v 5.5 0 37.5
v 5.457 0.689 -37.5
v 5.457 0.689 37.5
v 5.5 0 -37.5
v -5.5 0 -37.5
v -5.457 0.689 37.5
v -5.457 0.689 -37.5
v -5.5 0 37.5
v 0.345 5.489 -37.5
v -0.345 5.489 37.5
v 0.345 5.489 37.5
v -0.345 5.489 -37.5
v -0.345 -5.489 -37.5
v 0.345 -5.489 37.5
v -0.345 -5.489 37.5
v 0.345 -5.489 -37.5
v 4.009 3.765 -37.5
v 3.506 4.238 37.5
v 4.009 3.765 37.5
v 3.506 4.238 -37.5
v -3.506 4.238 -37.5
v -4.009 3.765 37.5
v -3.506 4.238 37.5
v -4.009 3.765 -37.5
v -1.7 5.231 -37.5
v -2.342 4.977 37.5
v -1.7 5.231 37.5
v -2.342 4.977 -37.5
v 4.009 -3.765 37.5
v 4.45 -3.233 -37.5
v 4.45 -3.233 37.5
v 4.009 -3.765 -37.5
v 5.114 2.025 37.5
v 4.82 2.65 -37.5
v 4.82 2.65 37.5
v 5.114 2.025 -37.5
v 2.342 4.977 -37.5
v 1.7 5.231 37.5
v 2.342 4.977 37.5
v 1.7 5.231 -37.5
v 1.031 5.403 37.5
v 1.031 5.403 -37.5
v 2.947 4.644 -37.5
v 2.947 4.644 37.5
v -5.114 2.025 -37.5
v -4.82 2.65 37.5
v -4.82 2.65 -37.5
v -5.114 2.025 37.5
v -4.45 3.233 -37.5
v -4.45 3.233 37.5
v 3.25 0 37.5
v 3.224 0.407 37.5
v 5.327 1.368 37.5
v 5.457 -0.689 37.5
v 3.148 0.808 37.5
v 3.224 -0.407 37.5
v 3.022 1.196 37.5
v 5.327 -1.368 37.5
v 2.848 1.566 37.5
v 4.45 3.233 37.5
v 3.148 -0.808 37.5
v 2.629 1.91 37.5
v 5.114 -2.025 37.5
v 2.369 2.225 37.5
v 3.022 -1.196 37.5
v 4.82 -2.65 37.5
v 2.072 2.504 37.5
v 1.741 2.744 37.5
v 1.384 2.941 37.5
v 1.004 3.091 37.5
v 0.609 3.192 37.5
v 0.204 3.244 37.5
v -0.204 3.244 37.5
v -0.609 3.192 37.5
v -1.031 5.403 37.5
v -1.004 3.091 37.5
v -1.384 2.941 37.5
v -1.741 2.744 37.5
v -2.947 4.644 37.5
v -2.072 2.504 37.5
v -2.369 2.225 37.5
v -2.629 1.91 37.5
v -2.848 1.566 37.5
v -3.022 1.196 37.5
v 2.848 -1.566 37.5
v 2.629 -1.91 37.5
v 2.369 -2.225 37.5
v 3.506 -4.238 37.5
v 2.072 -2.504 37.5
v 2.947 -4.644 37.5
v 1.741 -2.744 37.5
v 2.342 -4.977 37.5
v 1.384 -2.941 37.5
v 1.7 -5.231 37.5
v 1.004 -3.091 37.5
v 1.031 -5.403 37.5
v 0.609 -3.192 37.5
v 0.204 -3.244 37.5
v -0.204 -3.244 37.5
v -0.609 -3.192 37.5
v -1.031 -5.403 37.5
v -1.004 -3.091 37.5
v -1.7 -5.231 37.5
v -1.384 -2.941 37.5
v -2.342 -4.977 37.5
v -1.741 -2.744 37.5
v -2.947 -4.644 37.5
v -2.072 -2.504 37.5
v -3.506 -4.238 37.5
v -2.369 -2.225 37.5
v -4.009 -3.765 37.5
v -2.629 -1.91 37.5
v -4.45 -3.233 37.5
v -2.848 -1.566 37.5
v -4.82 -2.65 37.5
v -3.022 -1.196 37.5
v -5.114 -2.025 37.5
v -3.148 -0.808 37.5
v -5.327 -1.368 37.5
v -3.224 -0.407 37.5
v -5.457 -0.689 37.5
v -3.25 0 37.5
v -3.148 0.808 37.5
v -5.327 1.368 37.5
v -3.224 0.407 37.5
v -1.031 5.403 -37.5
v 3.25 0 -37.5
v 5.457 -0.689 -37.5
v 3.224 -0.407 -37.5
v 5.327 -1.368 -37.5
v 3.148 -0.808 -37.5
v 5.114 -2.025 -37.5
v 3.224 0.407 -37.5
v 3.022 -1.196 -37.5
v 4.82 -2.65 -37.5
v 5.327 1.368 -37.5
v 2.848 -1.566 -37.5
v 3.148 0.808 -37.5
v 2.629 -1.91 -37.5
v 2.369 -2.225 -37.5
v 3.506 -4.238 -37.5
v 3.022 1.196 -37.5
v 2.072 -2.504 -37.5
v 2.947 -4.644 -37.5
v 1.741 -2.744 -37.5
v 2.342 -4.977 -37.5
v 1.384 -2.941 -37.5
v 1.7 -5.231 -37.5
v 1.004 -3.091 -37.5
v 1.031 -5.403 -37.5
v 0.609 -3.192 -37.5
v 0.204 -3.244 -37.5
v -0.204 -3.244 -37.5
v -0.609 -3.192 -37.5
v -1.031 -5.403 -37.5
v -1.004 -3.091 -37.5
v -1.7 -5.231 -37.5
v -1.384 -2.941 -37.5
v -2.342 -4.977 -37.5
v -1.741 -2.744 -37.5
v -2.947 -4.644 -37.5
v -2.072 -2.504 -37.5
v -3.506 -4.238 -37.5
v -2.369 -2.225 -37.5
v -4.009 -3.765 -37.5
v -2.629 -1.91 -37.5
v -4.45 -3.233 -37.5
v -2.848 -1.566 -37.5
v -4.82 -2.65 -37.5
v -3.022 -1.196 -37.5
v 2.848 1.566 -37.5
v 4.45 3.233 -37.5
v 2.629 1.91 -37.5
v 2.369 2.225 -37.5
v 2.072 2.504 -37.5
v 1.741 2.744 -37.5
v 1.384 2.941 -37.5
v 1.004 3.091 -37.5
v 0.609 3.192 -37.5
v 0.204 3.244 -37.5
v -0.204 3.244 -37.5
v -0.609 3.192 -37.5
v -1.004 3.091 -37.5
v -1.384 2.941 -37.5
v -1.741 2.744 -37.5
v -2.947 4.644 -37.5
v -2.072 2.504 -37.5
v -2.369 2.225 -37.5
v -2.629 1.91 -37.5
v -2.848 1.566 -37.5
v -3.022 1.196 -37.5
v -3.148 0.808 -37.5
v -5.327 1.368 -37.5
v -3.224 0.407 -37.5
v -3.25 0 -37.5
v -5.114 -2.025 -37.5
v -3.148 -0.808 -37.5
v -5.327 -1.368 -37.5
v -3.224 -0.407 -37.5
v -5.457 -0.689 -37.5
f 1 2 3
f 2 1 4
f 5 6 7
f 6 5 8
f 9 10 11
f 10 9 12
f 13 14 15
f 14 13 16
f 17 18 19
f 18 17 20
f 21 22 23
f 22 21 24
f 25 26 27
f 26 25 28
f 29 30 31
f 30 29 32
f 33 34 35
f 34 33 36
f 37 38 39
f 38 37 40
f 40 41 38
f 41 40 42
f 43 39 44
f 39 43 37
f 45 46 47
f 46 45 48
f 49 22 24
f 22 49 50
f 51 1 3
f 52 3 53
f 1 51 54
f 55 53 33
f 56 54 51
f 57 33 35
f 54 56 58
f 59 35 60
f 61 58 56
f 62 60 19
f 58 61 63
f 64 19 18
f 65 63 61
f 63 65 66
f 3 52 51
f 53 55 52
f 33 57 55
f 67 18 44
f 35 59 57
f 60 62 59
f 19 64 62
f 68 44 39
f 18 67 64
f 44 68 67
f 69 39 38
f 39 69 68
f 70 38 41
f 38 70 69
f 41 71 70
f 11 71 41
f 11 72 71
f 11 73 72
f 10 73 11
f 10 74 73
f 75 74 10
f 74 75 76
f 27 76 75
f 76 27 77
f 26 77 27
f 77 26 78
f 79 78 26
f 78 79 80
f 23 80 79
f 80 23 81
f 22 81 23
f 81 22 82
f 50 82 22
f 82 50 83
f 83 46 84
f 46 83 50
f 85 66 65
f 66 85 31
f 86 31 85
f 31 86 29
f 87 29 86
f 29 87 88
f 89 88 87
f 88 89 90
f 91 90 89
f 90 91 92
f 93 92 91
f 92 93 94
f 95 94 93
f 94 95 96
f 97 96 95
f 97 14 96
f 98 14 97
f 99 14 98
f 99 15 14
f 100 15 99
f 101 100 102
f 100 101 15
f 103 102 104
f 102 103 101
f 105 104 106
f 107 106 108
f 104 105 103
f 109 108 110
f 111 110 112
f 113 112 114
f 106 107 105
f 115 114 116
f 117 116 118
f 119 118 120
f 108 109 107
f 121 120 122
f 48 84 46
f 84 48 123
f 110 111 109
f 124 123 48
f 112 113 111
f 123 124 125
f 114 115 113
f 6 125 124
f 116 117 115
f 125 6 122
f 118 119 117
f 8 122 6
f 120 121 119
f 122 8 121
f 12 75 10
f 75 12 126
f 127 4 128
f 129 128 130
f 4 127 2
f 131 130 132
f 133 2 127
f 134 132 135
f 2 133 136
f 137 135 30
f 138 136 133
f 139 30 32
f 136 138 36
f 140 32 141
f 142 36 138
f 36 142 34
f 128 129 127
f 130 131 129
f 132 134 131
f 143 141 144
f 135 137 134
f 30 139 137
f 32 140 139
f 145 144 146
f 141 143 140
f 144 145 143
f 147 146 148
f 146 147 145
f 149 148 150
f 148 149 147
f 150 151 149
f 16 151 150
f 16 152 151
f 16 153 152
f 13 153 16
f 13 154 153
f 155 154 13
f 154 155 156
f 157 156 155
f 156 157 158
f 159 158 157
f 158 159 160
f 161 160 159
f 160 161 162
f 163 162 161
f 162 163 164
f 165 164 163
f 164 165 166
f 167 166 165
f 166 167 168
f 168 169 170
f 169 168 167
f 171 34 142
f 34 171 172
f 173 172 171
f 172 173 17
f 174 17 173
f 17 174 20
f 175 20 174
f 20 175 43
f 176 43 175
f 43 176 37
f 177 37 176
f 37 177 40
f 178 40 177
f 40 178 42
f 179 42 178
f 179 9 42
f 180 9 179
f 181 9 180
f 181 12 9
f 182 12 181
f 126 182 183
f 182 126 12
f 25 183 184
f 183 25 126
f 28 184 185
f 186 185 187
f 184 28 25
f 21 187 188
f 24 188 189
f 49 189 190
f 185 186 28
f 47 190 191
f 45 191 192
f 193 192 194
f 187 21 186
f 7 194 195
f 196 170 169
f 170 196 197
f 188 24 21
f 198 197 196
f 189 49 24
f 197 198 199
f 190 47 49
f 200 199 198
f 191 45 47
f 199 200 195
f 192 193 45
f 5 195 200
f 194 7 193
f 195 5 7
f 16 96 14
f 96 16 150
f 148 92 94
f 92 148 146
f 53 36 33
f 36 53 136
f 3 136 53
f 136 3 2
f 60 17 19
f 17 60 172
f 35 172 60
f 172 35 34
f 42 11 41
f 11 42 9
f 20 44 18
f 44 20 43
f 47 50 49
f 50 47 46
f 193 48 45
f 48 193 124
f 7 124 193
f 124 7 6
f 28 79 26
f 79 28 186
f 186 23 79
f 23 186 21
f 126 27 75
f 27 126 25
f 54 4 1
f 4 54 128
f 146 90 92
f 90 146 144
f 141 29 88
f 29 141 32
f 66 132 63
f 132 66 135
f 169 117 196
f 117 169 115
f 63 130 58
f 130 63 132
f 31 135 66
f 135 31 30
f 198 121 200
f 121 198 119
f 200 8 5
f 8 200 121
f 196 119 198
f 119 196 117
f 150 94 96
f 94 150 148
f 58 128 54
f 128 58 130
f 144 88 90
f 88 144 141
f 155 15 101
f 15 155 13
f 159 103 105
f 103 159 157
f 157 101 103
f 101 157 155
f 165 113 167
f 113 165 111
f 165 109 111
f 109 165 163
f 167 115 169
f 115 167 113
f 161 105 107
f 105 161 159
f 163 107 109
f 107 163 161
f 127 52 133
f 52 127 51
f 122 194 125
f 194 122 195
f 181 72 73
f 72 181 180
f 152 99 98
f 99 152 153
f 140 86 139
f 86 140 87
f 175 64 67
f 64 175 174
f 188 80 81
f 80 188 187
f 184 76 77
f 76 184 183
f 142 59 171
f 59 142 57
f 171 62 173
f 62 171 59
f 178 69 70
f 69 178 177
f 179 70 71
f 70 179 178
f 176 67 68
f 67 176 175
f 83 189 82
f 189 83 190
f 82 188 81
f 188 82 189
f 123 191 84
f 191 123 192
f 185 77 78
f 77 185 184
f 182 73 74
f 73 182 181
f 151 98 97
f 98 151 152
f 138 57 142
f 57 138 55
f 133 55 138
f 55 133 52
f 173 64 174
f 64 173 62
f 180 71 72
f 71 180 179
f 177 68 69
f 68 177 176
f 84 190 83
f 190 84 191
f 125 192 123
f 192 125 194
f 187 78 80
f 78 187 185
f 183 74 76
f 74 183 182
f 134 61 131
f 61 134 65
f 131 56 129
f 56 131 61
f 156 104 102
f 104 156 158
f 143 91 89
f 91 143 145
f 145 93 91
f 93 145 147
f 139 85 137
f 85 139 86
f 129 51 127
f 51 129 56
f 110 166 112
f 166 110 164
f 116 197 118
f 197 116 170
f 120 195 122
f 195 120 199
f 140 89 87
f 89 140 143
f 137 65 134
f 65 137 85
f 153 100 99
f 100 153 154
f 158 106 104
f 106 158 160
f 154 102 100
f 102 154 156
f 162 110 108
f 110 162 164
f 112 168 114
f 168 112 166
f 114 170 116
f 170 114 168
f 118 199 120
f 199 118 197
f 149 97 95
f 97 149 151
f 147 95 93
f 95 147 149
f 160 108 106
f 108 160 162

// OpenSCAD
$fn = 50;


difference() {
	union() {
		translate(v = [0, 0, -37.5000000000]) {
			cylinder(h = 75, r = 5.5000000000);
		}
	}
	union() {
		translate(v = [0, 0, -100.0000000000]) {
			cylinder(h = 200, r = 3.2500000000);
		}
	}
}
